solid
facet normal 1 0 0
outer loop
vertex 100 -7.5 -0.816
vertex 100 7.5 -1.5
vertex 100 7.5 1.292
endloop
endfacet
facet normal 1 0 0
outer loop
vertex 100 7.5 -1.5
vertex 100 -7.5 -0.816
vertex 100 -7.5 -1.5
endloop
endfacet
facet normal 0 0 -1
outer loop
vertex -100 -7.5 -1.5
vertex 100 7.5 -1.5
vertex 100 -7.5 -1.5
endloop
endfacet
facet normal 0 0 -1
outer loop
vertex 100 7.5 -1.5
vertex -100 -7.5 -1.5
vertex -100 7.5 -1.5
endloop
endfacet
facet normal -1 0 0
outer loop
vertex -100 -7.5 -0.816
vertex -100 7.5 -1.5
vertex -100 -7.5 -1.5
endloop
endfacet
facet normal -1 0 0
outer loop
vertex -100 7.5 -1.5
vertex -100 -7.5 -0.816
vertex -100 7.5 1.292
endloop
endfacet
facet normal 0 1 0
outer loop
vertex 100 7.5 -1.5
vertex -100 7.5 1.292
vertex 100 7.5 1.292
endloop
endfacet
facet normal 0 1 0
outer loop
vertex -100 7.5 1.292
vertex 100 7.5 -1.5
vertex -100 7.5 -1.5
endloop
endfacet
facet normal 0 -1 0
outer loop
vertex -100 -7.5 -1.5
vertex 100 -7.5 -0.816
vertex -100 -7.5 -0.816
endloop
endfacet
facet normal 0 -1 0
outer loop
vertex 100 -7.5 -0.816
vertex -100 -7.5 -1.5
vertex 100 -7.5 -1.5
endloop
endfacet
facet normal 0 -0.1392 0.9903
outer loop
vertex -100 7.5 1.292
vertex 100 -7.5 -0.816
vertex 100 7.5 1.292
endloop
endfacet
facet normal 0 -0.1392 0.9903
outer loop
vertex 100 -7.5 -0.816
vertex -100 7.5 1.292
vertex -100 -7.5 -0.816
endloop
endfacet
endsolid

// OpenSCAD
difference() {
    cube([200, 15, 3], center=true);
    translate([0, 0, 1.5]) {
        rotate([8, 0, 0]) {
            #cube([200, 20, 2.5], center=true);
        }
    }
}
